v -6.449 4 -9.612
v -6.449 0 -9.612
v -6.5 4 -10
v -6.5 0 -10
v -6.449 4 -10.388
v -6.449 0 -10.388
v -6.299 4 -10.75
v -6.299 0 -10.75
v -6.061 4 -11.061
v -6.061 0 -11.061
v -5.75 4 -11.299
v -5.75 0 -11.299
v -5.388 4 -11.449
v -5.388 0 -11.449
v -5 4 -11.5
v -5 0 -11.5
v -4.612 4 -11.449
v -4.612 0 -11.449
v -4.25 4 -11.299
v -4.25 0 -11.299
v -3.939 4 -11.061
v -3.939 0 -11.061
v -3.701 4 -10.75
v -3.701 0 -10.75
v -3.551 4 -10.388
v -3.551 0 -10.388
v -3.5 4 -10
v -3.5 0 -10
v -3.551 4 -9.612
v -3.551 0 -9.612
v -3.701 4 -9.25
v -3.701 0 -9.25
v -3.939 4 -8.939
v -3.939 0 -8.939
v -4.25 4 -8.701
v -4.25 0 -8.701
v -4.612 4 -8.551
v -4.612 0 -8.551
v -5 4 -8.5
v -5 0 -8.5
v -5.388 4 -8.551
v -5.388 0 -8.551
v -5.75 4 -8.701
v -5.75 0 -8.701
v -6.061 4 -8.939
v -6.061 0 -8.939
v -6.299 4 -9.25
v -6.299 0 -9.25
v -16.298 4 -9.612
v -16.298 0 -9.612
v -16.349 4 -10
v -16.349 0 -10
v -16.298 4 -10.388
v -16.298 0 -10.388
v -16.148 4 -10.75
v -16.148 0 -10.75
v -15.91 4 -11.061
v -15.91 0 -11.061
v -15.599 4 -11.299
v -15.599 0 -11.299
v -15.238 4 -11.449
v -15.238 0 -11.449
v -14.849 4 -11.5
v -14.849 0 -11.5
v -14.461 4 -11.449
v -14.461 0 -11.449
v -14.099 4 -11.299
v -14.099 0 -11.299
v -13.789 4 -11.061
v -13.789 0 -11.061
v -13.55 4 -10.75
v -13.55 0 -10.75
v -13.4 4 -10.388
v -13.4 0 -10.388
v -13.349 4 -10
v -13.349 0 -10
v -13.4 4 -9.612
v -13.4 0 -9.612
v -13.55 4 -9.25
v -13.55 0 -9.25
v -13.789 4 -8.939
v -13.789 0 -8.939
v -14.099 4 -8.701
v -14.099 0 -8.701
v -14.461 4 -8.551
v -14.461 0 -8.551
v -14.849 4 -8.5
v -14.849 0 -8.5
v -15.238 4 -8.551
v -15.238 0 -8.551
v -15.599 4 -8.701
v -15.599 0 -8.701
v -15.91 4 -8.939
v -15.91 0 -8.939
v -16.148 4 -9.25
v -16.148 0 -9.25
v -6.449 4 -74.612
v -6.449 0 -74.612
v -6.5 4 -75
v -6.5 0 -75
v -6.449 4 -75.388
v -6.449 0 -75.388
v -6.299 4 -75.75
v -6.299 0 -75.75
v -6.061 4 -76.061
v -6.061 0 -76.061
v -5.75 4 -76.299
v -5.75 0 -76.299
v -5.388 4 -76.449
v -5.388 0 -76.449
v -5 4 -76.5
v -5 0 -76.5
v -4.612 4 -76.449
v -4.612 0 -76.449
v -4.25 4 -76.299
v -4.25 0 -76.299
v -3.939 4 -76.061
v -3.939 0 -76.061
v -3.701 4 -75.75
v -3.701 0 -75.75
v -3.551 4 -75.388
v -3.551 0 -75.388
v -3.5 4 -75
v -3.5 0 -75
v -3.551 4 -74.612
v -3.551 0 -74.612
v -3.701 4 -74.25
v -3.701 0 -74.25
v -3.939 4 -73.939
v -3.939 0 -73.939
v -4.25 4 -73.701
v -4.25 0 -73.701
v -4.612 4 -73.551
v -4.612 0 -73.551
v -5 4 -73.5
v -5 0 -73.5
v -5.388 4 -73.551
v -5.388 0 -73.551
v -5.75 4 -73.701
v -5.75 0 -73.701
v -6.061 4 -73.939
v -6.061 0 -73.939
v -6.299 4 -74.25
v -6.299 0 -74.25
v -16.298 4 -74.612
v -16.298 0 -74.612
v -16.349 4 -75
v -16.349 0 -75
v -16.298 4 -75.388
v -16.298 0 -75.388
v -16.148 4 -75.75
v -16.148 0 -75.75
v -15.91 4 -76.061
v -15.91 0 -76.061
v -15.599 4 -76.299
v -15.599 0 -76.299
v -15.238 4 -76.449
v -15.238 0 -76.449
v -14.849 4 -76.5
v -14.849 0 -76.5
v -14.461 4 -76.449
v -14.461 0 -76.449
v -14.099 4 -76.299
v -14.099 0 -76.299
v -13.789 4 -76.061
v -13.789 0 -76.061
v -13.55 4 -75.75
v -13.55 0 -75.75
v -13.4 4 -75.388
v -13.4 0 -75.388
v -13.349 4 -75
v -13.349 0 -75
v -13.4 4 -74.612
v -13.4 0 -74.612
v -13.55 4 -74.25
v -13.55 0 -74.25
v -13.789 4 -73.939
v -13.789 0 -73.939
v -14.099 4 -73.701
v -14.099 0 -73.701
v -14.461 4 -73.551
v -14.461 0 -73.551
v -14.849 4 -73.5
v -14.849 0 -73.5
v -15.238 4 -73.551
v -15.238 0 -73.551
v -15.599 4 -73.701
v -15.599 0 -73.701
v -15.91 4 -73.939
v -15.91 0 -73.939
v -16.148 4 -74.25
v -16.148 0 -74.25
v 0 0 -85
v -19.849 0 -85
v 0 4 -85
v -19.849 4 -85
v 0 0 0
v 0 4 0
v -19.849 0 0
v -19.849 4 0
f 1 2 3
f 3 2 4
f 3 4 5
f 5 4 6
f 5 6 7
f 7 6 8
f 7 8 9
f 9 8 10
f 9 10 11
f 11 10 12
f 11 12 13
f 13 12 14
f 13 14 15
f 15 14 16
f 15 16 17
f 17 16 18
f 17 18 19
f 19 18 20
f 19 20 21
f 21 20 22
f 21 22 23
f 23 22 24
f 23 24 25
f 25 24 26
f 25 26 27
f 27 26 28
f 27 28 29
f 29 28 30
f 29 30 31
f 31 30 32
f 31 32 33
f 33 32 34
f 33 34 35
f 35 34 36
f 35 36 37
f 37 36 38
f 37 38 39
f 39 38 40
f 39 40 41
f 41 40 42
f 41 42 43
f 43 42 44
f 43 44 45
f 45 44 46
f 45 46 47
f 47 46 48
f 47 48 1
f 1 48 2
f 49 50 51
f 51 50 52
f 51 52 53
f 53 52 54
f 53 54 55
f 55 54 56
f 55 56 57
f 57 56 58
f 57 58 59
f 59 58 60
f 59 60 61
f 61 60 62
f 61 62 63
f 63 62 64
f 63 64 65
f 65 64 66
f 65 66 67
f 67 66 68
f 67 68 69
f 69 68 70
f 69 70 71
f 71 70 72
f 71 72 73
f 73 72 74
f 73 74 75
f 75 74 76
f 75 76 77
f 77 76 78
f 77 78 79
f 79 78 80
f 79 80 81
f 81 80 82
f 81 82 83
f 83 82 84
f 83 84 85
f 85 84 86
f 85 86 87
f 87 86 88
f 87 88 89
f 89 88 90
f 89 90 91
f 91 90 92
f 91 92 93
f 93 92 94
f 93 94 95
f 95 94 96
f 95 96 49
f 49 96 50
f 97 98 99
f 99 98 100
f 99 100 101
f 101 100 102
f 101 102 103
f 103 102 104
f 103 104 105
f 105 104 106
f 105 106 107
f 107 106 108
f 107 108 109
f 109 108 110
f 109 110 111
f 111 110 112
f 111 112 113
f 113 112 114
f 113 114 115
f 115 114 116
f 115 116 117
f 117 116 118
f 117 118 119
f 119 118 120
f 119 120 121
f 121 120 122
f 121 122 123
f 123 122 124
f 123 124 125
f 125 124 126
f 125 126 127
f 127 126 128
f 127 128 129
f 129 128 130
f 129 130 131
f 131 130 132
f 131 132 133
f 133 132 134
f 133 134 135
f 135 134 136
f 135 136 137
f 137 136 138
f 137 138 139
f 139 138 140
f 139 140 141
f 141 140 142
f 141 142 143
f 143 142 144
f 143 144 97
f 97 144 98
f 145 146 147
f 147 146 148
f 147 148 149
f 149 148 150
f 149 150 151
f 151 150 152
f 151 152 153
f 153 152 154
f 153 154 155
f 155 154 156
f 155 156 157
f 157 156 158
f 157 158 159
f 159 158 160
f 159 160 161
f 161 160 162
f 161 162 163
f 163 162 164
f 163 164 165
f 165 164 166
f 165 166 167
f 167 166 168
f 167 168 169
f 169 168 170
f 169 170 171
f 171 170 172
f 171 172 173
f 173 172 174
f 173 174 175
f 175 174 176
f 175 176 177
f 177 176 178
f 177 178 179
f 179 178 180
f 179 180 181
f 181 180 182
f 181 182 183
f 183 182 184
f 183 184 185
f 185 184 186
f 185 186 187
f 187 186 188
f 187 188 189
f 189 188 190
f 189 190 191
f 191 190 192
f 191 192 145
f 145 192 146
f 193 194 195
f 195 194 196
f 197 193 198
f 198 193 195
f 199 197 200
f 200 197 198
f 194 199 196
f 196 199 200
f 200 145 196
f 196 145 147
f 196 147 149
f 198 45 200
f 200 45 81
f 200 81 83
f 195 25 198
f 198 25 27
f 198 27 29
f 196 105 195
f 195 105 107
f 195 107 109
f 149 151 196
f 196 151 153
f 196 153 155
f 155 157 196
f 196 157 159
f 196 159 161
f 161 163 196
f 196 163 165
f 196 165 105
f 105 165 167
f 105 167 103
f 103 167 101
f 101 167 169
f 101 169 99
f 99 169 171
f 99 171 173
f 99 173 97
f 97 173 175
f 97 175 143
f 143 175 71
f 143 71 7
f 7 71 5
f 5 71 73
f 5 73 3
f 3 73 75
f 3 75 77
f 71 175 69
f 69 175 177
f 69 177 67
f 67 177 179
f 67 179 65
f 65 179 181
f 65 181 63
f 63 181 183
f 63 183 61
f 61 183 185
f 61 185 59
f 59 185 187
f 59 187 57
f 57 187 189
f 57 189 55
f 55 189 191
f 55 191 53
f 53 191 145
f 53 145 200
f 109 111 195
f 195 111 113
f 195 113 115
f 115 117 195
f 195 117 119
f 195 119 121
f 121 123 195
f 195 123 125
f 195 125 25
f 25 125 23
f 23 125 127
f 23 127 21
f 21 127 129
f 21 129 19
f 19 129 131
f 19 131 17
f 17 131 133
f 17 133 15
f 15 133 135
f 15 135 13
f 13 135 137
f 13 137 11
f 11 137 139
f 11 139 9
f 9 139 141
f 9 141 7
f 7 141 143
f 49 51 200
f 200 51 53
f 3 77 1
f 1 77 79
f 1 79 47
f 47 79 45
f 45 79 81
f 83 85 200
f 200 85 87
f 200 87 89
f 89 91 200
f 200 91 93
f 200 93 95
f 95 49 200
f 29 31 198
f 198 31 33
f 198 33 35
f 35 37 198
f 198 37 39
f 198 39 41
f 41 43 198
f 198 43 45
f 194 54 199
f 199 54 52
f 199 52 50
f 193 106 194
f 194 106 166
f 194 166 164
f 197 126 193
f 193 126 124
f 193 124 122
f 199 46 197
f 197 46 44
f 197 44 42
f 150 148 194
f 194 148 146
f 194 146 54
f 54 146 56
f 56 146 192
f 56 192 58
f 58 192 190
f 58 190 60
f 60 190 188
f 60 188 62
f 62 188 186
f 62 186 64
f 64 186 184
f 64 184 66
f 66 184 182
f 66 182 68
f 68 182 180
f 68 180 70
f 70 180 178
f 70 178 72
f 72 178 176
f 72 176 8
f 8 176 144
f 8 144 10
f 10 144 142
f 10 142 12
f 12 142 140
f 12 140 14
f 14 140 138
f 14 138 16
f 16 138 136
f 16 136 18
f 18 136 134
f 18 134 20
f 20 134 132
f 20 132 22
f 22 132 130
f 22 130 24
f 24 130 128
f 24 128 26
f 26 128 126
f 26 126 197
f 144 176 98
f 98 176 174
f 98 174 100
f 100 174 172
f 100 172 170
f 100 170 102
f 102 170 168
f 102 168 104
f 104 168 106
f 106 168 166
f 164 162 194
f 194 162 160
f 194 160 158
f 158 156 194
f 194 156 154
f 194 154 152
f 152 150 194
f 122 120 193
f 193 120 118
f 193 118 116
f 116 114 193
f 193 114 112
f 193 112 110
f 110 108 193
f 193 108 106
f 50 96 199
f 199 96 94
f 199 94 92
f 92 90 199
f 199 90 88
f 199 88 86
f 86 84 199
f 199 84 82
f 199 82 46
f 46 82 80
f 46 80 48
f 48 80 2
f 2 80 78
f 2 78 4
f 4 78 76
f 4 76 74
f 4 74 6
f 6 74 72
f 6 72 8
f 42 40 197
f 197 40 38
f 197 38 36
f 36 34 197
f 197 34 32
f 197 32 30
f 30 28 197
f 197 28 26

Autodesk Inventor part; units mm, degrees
ref_plane "YZ Plane" through (0, 0, 0) normal (1, 0, 0) x (0, 1, 0)
ref_plane "XZ Plane" through (0, 0, 0) normal (0, 1, 0) x (-1, 0, 0)
ref_plane "XY Plane" through (0, 0, 0) normal (0, 0, 1) x (1, 0, 0)
sketch "Esboço1" plane through (0, 0, 0) normal (0, 1, 0) x (-1, 0, 0)
  line L0 (0, 0) -> (19.8493, 0)
  line L1 (19.8493, 0) -> (19.8493, -85)
  line L2 (19.8493, -85) -> (0, -85)
  line L3 (0, -85) -> (0, 0)
  line L4 (20, -22) -> (20, -63)
  line L5 (0, -63) -> (0, -22)
  circle A0 centre (14.8493, -75) radius 1.5
  circle A1 centre (5, -75) radius 1.5
  circle A2 centre (14.8493, -10) radius 1.5
  circle A3 centre (5, -10) radius 1.5
  dimension "d15" = 3
  dimension "d16" = 3
  dimension "d17" = 3
  dimension "d18" = 3
  dimension "d19" = 10
  dimension "d20" = 5
  dimension "d21" = 5
  dimension "d22" = 10
  dimension "d23" = 5
  dimension "d24" = 5
  dimension "d25" = 10
  dimension "d26" = 10
extrude "Extrusão3" add sketch "Esboço1" along normal blind 4
properties part number "suporte estruzor 2"
